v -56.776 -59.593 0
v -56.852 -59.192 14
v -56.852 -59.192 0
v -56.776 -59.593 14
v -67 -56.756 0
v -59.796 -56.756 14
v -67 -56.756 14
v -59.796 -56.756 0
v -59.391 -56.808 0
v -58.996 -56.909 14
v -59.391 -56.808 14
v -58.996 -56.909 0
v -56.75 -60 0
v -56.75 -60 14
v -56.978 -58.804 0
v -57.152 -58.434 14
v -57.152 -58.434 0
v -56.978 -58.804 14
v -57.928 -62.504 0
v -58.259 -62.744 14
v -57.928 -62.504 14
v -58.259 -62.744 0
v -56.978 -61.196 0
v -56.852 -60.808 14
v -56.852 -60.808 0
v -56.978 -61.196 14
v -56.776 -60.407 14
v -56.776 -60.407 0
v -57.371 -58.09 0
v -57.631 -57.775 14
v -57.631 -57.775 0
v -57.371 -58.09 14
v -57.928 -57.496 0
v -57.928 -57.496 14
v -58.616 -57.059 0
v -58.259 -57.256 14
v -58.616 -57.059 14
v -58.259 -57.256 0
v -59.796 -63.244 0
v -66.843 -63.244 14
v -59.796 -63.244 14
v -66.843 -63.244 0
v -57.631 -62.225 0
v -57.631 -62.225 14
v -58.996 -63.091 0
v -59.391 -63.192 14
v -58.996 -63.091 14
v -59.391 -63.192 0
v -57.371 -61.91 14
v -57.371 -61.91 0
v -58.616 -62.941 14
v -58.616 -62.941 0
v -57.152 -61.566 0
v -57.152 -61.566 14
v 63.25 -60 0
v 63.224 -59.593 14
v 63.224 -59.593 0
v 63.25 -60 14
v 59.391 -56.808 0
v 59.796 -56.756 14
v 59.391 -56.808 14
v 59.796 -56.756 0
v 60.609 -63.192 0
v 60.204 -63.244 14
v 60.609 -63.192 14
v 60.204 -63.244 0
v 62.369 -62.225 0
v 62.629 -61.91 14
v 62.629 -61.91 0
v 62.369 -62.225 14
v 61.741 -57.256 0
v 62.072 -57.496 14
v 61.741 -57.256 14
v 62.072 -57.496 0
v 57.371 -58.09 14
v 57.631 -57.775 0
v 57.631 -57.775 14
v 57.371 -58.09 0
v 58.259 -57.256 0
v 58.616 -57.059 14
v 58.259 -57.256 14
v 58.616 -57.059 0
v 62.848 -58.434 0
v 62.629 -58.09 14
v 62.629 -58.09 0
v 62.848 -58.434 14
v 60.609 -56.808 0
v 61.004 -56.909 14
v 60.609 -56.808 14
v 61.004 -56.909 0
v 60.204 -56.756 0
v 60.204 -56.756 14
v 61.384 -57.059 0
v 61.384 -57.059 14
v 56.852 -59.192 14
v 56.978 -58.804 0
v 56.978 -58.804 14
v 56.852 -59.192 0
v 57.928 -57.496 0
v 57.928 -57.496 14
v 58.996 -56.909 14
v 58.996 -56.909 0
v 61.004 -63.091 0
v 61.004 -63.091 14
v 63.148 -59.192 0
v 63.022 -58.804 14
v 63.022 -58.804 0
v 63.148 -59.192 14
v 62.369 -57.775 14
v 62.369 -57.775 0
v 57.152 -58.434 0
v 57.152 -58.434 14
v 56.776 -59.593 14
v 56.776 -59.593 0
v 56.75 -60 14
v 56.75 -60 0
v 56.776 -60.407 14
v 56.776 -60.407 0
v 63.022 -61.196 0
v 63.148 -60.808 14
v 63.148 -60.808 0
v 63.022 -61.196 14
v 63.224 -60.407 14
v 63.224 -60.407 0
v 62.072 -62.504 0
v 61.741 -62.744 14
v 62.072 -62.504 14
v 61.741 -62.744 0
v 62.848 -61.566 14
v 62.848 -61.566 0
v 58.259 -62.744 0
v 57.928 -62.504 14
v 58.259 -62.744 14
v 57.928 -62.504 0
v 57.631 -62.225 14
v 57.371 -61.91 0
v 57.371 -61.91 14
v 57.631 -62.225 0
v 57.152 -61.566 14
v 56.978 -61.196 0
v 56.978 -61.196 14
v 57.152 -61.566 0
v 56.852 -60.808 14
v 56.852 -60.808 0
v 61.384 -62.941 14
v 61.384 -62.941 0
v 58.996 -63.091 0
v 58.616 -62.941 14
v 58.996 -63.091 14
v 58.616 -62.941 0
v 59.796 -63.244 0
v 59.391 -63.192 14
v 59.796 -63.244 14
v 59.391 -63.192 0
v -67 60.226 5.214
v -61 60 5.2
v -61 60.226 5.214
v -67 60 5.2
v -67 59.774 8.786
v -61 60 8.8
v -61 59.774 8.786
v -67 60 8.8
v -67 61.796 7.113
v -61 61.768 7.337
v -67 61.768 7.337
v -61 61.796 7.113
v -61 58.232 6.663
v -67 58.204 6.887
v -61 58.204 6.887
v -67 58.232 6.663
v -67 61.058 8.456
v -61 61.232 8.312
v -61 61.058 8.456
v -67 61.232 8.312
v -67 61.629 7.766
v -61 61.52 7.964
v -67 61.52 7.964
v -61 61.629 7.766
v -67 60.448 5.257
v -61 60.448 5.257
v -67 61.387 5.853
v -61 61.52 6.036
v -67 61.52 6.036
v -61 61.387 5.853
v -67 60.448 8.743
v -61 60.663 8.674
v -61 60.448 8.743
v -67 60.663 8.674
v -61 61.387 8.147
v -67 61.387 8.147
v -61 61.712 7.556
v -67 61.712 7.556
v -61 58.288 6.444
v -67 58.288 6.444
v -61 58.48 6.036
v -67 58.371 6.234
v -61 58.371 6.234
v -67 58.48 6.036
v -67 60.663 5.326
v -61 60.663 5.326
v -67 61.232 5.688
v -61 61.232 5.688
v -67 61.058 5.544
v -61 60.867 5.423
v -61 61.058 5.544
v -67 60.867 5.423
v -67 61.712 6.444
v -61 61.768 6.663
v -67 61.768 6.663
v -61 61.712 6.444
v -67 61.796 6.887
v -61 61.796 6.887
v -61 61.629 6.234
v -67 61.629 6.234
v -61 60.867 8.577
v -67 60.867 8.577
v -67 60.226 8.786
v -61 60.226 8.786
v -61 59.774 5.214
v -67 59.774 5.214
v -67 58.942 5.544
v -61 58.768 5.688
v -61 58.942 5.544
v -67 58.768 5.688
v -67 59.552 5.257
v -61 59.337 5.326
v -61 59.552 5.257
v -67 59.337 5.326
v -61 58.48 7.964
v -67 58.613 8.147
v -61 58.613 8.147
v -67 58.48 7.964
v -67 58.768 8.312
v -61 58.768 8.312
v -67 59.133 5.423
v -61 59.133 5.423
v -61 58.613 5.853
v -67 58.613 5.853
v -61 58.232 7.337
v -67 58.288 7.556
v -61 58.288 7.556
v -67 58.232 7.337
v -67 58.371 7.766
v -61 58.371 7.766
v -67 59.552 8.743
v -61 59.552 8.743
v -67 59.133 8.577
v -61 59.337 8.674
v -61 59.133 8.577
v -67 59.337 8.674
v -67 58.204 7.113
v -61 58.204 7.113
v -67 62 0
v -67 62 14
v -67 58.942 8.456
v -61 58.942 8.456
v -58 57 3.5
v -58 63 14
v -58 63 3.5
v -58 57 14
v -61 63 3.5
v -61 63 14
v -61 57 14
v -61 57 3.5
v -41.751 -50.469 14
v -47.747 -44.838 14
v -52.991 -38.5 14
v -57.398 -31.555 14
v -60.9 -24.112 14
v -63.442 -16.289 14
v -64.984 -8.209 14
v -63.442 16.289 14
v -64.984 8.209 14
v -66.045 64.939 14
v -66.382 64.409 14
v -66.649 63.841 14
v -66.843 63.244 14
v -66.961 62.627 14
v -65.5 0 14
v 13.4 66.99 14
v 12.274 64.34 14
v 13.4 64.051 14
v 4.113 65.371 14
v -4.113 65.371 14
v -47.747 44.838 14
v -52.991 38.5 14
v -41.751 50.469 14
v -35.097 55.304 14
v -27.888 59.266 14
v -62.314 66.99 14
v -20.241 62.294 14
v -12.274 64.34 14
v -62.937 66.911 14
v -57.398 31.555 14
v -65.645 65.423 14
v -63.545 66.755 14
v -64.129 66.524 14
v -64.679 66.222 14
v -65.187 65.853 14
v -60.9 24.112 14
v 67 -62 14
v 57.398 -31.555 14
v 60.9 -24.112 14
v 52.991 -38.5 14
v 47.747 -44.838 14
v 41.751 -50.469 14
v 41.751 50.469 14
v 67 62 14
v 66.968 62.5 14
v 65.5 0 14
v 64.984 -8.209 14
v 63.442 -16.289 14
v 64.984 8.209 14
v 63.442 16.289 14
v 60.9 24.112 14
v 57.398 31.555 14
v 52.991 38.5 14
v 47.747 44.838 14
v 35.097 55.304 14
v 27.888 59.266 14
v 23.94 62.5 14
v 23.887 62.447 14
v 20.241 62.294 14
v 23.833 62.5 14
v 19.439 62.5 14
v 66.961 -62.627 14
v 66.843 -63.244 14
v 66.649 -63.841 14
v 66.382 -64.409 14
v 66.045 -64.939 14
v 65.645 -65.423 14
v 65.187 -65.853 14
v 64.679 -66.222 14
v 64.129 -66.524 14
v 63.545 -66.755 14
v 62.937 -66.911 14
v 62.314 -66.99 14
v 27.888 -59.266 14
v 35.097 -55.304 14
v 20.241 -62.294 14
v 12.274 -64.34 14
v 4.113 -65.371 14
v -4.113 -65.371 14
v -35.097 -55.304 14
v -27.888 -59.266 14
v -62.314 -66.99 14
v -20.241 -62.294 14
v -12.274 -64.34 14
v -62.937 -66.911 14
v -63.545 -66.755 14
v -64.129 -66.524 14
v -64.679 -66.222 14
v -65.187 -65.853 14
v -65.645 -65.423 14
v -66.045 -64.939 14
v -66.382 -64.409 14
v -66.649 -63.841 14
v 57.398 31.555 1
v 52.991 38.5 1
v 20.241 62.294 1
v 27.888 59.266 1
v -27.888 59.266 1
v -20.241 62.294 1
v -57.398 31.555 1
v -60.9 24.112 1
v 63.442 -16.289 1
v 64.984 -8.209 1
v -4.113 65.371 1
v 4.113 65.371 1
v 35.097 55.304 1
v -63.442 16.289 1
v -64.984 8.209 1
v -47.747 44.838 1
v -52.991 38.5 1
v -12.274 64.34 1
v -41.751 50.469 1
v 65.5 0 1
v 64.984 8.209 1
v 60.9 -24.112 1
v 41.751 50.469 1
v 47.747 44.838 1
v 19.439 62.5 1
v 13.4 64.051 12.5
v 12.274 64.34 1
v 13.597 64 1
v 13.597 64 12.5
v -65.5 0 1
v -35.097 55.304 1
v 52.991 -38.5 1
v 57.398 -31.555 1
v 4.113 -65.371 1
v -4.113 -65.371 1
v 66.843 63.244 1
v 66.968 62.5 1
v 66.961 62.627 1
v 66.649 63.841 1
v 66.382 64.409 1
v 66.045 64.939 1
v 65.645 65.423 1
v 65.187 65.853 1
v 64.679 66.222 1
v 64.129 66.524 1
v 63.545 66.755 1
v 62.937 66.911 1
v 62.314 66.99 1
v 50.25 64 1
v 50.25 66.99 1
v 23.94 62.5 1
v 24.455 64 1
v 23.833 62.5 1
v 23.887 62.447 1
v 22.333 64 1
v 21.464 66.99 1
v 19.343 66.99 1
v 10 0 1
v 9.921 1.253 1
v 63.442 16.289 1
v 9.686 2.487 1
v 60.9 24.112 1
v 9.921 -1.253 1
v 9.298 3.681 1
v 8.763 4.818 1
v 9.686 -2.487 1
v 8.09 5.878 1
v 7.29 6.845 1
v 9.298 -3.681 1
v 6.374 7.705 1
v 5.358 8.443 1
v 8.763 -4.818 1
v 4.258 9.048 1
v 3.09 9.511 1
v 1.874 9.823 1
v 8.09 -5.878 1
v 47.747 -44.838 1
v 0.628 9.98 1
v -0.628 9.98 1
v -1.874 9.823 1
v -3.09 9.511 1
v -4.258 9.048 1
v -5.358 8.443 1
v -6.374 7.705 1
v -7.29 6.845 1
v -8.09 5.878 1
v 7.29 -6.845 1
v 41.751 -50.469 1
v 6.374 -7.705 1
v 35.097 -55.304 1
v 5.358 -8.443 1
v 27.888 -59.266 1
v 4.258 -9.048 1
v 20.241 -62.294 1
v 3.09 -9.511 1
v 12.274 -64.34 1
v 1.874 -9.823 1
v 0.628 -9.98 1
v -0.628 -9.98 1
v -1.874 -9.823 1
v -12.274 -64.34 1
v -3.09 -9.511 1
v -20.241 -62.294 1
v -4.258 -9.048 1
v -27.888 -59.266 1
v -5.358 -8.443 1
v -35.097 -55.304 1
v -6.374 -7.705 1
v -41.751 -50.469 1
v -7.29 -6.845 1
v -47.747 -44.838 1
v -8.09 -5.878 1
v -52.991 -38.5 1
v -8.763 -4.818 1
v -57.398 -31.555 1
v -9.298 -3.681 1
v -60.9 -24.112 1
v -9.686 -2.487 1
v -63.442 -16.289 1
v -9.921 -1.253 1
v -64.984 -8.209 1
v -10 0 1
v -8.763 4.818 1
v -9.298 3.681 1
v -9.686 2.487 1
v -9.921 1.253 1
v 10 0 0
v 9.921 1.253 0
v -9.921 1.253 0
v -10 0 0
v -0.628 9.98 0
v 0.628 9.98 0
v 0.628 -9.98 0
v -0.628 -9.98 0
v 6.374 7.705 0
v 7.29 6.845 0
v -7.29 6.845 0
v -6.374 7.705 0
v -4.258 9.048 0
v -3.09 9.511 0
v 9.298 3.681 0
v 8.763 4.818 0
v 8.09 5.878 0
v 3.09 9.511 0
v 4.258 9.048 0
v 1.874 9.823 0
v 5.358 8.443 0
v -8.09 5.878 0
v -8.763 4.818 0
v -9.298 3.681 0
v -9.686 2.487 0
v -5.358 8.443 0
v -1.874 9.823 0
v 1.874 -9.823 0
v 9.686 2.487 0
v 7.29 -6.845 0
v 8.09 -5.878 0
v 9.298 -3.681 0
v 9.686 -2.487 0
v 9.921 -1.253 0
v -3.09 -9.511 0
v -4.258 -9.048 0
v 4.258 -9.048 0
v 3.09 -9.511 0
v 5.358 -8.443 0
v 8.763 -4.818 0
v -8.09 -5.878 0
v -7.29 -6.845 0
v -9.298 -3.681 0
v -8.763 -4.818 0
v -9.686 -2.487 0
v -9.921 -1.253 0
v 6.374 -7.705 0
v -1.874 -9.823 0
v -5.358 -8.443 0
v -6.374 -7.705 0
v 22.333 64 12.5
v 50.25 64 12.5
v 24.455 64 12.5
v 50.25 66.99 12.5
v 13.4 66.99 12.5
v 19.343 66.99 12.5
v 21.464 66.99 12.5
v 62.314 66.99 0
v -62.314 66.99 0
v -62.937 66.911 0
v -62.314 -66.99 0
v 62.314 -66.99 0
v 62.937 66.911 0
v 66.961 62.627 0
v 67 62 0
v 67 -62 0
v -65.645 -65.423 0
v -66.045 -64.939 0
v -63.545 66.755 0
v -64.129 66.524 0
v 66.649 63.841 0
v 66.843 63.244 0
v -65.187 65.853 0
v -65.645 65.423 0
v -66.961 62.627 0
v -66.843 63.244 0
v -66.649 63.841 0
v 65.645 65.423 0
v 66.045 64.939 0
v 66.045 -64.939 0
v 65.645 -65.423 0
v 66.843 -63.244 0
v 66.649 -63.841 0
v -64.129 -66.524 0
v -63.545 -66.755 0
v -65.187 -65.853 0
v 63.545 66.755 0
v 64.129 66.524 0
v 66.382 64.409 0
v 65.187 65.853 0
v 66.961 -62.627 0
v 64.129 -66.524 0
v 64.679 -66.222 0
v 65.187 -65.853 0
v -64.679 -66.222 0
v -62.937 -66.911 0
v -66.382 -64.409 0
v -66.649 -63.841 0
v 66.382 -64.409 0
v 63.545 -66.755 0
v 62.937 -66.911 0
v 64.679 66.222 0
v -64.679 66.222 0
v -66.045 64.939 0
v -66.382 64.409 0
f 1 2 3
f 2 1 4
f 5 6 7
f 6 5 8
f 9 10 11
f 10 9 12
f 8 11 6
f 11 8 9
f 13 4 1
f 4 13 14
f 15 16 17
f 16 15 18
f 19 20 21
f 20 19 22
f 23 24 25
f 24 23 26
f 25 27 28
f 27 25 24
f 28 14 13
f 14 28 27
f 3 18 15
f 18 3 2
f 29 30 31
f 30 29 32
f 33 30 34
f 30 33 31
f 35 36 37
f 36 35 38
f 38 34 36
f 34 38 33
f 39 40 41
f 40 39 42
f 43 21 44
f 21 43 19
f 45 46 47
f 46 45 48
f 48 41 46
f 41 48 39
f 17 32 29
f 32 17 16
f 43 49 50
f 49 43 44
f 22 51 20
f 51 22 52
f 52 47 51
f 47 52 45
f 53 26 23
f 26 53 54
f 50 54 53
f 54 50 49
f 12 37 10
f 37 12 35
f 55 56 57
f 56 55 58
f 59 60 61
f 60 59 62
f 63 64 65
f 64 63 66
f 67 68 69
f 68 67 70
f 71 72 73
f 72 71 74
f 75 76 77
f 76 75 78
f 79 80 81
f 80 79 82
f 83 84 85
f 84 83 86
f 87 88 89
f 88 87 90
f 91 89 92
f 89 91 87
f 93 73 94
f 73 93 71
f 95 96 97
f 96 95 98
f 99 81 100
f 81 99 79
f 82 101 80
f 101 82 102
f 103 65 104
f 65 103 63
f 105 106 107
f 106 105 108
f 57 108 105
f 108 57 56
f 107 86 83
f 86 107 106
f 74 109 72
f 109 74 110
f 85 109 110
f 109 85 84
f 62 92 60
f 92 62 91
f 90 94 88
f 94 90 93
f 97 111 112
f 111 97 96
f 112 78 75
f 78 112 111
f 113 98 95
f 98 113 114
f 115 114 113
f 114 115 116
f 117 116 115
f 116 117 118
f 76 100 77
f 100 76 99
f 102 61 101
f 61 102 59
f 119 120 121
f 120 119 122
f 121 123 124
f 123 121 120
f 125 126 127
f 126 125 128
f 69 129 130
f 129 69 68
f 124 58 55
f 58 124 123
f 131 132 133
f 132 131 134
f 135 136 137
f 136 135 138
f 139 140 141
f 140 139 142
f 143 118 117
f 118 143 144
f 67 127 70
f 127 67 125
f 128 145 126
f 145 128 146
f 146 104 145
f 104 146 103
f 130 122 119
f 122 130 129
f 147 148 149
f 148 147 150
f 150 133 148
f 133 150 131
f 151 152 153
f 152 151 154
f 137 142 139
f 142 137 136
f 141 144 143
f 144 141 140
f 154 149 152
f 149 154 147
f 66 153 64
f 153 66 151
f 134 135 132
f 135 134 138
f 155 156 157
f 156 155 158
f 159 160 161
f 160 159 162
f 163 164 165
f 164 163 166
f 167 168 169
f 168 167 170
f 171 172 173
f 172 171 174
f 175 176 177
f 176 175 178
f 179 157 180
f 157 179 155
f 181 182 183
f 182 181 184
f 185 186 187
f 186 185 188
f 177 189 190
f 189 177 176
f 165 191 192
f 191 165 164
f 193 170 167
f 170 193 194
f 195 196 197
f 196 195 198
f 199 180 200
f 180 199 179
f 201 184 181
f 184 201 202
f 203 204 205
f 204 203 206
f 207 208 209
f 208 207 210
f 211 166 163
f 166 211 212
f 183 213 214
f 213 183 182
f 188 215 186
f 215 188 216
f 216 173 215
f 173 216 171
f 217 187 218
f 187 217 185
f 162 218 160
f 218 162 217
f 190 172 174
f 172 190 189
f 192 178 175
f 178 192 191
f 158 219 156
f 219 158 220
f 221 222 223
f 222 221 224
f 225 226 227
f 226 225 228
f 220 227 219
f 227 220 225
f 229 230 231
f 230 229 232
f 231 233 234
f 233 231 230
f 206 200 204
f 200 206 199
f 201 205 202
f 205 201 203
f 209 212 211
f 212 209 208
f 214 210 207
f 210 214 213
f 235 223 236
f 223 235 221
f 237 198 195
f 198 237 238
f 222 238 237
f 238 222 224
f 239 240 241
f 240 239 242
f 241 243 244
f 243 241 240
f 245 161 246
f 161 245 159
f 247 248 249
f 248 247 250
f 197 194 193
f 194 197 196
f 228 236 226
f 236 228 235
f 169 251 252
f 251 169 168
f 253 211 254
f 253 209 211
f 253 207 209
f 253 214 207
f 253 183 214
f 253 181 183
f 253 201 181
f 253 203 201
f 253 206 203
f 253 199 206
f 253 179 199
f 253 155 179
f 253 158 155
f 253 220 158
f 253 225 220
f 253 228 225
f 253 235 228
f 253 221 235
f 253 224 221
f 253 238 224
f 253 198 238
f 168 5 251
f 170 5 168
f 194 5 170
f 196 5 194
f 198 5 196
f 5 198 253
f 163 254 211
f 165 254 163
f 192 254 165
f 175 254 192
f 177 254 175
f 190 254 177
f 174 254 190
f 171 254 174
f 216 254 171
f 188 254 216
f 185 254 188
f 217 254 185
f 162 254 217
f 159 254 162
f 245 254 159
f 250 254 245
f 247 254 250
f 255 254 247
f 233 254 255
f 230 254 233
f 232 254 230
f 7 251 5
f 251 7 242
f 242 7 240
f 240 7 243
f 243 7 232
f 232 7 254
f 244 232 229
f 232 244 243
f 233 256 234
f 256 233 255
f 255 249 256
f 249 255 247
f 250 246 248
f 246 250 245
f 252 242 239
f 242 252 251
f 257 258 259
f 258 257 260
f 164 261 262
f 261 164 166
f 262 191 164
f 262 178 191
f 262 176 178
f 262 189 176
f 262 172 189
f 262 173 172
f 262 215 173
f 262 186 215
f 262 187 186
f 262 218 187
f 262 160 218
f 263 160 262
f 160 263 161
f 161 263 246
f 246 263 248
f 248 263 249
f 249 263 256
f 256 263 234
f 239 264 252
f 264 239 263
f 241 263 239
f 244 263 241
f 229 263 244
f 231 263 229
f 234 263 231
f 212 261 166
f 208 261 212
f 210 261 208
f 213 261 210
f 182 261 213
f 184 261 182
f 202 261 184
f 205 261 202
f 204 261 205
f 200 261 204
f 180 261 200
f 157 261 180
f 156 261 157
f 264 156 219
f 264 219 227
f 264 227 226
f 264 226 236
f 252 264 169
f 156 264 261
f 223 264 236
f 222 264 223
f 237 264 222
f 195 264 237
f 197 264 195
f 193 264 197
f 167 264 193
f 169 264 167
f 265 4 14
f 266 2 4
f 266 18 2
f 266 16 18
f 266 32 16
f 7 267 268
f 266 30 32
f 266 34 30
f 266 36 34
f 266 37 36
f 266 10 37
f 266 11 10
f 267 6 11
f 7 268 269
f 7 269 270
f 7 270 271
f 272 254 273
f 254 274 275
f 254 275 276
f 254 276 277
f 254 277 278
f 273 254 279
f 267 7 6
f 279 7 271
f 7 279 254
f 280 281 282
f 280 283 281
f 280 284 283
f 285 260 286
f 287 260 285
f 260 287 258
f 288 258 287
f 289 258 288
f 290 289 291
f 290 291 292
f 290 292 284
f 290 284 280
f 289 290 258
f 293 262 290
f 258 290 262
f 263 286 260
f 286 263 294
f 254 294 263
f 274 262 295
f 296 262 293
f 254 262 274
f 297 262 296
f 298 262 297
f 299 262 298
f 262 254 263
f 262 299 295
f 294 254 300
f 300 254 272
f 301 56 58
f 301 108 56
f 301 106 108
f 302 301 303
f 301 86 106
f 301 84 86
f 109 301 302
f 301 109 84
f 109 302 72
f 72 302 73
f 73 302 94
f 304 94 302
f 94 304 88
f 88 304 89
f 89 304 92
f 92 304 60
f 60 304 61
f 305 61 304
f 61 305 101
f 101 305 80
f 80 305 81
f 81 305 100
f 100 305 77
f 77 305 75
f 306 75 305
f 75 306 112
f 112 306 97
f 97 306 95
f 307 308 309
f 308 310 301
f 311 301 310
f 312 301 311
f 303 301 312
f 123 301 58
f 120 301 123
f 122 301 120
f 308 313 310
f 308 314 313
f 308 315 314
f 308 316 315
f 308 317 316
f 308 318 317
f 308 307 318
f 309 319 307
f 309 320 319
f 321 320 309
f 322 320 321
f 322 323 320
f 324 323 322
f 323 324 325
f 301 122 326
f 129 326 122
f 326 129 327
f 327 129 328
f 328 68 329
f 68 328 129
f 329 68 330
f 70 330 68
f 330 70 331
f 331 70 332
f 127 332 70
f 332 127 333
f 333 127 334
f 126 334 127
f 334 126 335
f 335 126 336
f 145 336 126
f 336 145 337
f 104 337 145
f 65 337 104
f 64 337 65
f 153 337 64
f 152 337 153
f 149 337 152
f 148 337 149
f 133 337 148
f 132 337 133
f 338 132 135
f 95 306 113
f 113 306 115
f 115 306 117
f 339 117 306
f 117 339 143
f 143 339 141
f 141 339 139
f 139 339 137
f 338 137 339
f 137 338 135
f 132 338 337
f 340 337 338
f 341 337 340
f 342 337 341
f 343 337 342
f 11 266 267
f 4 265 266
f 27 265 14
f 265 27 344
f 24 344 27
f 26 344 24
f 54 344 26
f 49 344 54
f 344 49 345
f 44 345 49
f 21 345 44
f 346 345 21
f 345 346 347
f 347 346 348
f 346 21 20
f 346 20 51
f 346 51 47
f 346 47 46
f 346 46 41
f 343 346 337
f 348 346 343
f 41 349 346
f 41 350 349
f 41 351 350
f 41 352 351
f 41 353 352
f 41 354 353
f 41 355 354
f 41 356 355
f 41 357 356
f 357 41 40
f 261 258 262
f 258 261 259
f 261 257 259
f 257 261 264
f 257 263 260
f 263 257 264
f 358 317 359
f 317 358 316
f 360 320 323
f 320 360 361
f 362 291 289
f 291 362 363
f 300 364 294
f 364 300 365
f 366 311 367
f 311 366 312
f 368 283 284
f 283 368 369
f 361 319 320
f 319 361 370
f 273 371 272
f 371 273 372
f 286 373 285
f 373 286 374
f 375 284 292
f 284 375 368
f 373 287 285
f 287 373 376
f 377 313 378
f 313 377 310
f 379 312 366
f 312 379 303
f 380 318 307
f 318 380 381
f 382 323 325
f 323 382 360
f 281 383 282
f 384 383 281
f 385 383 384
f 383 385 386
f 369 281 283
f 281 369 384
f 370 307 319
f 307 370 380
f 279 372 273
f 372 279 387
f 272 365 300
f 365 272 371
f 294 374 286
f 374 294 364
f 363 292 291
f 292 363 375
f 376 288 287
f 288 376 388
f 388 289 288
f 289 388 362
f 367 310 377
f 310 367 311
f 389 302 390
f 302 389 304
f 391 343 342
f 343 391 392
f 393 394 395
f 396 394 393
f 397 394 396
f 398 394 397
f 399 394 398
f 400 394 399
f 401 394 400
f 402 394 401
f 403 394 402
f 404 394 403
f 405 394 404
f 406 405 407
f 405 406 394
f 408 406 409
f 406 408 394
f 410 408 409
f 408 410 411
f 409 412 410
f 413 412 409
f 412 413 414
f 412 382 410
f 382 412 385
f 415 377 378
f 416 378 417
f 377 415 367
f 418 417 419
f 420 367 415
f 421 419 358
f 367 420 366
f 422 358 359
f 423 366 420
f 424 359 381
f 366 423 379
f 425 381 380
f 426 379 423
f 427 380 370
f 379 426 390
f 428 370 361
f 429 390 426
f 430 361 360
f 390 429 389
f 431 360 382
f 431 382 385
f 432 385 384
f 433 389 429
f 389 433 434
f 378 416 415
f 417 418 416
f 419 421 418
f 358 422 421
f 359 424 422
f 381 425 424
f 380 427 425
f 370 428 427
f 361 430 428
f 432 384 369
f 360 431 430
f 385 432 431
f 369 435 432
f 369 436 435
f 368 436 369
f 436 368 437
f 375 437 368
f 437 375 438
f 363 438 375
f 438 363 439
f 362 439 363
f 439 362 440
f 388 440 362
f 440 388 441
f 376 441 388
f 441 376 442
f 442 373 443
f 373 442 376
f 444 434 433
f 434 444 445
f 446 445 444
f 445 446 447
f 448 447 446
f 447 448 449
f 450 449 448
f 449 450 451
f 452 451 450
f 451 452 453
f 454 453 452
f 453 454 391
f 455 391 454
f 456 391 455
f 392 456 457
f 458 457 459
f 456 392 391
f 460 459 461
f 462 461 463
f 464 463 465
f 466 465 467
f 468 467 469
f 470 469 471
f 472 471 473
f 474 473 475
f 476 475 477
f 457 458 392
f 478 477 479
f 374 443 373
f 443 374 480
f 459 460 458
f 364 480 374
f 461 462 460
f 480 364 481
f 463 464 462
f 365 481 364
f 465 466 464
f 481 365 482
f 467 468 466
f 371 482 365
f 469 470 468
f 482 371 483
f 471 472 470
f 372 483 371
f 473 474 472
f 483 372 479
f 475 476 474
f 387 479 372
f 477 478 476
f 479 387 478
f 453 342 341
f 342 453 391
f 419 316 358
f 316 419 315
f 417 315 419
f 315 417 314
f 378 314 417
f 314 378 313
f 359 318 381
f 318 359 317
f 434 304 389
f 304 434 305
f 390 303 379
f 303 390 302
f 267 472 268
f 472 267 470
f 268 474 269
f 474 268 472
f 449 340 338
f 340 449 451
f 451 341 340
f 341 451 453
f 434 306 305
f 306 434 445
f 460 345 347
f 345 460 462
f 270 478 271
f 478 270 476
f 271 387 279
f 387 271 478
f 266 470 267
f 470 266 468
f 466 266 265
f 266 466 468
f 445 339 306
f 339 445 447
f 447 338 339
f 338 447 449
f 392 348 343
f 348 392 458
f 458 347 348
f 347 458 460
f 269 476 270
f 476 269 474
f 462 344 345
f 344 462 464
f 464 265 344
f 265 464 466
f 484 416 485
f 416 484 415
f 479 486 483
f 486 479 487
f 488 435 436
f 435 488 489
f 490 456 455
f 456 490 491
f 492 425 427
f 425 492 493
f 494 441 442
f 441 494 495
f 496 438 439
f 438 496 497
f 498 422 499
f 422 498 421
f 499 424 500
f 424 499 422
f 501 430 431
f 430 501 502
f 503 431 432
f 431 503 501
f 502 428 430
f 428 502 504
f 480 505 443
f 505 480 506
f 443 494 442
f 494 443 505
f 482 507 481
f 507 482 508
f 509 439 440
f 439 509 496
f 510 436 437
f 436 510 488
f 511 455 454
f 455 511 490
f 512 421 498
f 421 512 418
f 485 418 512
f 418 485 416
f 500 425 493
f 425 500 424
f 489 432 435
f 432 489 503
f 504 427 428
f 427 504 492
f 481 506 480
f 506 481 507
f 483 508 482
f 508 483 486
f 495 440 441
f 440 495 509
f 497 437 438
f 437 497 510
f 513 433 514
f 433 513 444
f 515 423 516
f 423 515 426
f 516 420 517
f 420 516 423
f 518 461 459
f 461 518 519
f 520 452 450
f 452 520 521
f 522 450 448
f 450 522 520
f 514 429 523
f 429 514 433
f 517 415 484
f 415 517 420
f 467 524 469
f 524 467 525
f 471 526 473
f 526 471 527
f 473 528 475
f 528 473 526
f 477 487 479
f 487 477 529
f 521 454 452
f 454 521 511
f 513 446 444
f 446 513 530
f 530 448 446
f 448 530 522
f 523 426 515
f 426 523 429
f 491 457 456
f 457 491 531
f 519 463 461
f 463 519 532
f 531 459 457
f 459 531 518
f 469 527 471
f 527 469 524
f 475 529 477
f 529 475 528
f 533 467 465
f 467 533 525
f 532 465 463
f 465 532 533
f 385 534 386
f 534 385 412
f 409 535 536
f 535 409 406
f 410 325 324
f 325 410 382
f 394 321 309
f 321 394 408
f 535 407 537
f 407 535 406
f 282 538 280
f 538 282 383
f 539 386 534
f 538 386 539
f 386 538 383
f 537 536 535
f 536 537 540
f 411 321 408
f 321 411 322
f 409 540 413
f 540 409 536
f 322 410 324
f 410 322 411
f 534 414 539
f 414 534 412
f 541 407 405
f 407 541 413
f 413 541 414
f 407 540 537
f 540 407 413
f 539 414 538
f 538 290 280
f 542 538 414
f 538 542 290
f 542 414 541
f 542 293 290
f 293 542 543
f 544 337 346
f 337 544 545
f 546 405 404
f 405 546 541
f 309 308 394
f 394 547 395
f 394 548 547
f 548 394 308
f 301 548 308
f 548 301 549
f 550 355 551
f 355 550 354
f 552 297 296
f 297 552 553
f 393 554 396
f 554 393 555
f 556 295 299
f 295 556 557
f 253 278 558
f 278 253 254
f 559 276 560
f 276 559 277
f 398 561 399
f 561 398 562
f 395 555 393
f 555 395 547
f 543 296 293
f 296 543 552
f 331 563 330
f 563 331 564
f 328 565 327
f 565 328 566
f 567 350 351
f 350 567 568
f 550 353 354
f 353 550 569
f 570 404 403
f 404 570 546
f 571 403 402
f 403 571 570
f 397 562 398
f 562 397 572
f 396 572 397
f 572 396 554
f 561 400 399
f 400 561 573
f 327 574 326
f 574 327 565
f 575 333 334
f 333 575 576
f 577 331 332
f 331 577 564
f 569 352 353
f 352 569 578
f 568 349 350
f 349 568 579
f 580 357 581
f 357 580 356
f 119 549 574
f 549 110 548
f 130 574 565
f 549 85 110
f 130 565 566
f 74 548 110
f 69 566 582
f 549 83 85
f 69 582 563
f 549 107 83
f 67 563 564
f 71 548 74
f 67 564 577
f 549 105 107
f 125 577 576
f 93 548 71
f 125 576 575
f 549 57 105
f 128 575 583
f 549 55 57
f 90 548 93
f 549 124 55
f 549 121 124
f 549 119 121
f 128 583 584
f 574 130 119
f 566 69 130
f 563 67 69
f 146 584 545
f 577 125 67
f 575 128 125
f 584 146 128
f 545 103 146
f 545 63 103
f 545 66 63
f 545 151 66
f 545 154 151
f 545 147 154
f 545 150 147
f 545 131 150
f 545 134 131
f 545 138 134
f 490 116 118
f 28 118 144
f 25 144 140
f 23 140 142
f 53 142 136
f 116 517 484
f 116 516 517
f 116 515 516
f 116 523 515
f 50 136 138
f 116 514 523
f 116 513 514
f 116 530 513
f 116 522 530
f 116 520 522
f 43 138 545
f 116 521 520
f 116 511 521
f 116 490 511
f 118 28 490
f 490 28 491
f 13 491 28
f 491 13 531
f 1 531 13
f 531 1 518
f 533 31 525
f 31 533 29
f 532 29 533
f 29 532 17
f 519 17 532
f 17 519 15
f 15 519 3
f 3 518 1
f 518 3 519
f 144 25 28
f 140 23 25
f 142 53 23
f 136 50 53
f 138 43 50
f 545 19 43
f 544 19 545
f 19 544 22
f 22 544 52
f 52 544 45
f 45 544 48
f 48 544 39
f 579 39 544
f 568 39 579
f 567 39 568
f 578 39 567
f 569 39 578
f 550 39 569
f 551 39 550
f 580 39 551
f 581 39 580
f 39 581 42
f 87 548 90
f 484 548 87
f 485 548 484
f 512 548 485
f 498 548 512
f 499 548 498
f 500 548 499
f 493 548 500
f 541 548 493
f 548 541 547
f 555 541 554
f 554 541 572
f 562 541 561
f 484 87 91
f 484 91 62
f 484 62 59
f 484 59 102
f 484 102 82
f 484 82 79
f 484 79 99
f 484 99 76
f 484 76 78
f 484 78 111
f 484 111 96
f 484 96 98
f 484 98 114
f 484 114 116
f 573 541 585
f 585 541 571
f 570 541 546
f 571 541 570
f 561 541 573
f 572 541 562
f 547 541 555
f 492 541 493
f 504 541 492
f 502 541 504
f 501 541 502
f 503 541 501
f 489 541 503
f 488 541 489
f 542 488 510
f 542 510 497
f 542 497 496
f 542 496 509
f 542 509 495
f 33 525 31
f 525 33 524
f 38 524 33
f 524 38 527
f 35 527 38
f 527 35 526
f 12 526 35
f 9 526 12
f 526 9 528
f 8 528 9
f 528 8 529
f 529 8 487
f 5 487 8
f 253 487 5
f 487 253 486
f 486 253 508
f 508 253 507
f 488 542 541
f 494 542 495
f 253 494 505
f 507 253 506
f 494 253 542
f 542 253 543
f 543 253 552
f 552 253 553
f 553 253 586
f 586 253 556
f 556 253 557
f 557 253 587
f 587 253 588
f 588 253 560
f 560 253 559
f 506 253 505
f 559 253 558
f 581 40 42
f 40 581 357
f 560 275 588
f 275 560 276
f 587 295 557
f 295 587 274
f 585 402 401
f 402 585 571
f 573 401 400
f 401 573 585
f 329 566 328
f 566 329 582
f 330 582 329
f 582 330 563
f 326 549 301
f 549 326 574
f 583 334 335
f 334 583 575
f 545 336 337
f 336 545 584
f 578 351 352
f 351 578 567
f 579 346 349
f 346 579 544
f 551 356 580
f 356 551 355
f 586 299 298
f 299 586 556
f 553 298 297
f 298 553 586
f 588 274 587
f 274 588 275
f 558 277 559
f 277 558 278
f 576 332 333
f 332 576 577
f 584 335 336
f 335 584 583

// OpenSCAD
$fn = 50;


difference() {
	union() {
		translate(v = [0, 0, 0]) {
			rotate(a = [0, 0, 0]) {
				hull() {
					translate(v = [-62.0000000000, 62.0000000000, 0]) {
						rotate(a = [0, 0, 0]) {
							translate(v = [0, 0, 0]) {
								rotate(a = [0, 0, 0]) {
									cylinder(h = 14, r = 5);
								}
							}
						}
					}
					translate(v = [62.0000000000, 62.0000000000, 0]) {
						rotate(a = [0, 0, 0]) {
							translate(v = [0, 0, 0]) {
								rotate(a = [0, 0, 0]) {
									cylinder(h = 14, r = 5);
								}
							}
						}
					}
					translate(v = [-62.0000000000, -62.0000000000, 0]) {
						rotate(a = [0, 0, 0]) {
							translate(v = [0, 0, 0]) {
								rotate(a = [0, 0, 0]) {
									cylinder(h = 14, r = 5);
								}
							}
						}
					}
					translate(v = [62.0000000000, -62.0000000000, 0]) {
						rotate(a = [0, 0, 0]) {
							translate(v = [0, 0, 0]) {
								rotate(a = [0, 0, 0]) {
									cylinder(h = 14, r = 5);
								}
							}
						}
					}
				}
			}
		}
	}
	union() {
		translate(v = [-67.5000000000, -60.0000000000, -125]) {
			rotate(a = [0, 0, 0]) {
				hull() {
					translate(v = [7.5000000000, 0, 0]) {
						rotate(a = [0, 0, 0]) {
							translate(v = [0, 0, 0]) {
								rotate(a = [0, 0, 0]) {
									cylinder(h = 250, r = 3.2500000000);
								}
							}
						}
					}
					translate(v = [-7.5000000000, 0, 0]) {
						rotate(a = [0, 0, 0]) {
							translate(v = [0, 0, 0]) {
								rotate(a = [0, 0, 0]) {
									cylinder(h = 250, r = 3.2500000000);
								}
							}
						}
					}
				}
			}
		}
		translate(v = [60.0000000000, -60.0000000000, -125.0000000000]) {
			rotate(a = [0, 0, 0]) {
				cylinder(h = 250, r = 3.2500000000);
			}
		}
		translate(v = [-67.0000000000, 60.0000000000, 7.0000000000]) {
			rotate(a = [0, 90, 0]) {
				cylinder(h = 9, r = 1.8000000000);
			}
		}
		translate(v = [-61.0000000000, 57.0000000000, 3.5000000000]) {
			rotate(a = [0, 0, 0]) {
				cube(size = [3, 6, 10.5000000000]);
			}
		}
		translate(v = [0, 0, 1.0000000000]) {
			rotate(a = [0, 0, 0]) {
				cylinder(h = 16, r = 65.5000000000);
			}
		}
		translate(v = [0, 0, -7.0000000000]) {
			rotate(a = [0, 0, 0]) {
				cylinder(h = 14, r = 10.0000000000);
			}
		}
		translate(v = [0.0000000000, 62.5000000000, 1]) {
			rotate(a = [0, 0, 0]) {
				cube(size = [67.0000000000, 1.5000000000, 16]);
			}
		}
		translate(v = [50.2500000000, 62.5000000000, 1]) {
			rotate(a = [0, 0, 0]) {
				cube(size = [16.7500000000, 4.5000000000, 16]);
			}
		}
		translate(v = [13.4000000000, 62.5000000000, 12.5000000000]) {
			rotate(a = [0, 0, 0]) {
				cube(size = [53.6000000000, 4.5000000000, 1.5000000000]);
			}
		}
		translate(v = [18.5833333333, 67.7500000000, 1]) {
			rotate(a = [0, 0, -45]) {
				cube(size = [7.5000000000, 1.5000000000, 16]);
			}
		}
	}
}
